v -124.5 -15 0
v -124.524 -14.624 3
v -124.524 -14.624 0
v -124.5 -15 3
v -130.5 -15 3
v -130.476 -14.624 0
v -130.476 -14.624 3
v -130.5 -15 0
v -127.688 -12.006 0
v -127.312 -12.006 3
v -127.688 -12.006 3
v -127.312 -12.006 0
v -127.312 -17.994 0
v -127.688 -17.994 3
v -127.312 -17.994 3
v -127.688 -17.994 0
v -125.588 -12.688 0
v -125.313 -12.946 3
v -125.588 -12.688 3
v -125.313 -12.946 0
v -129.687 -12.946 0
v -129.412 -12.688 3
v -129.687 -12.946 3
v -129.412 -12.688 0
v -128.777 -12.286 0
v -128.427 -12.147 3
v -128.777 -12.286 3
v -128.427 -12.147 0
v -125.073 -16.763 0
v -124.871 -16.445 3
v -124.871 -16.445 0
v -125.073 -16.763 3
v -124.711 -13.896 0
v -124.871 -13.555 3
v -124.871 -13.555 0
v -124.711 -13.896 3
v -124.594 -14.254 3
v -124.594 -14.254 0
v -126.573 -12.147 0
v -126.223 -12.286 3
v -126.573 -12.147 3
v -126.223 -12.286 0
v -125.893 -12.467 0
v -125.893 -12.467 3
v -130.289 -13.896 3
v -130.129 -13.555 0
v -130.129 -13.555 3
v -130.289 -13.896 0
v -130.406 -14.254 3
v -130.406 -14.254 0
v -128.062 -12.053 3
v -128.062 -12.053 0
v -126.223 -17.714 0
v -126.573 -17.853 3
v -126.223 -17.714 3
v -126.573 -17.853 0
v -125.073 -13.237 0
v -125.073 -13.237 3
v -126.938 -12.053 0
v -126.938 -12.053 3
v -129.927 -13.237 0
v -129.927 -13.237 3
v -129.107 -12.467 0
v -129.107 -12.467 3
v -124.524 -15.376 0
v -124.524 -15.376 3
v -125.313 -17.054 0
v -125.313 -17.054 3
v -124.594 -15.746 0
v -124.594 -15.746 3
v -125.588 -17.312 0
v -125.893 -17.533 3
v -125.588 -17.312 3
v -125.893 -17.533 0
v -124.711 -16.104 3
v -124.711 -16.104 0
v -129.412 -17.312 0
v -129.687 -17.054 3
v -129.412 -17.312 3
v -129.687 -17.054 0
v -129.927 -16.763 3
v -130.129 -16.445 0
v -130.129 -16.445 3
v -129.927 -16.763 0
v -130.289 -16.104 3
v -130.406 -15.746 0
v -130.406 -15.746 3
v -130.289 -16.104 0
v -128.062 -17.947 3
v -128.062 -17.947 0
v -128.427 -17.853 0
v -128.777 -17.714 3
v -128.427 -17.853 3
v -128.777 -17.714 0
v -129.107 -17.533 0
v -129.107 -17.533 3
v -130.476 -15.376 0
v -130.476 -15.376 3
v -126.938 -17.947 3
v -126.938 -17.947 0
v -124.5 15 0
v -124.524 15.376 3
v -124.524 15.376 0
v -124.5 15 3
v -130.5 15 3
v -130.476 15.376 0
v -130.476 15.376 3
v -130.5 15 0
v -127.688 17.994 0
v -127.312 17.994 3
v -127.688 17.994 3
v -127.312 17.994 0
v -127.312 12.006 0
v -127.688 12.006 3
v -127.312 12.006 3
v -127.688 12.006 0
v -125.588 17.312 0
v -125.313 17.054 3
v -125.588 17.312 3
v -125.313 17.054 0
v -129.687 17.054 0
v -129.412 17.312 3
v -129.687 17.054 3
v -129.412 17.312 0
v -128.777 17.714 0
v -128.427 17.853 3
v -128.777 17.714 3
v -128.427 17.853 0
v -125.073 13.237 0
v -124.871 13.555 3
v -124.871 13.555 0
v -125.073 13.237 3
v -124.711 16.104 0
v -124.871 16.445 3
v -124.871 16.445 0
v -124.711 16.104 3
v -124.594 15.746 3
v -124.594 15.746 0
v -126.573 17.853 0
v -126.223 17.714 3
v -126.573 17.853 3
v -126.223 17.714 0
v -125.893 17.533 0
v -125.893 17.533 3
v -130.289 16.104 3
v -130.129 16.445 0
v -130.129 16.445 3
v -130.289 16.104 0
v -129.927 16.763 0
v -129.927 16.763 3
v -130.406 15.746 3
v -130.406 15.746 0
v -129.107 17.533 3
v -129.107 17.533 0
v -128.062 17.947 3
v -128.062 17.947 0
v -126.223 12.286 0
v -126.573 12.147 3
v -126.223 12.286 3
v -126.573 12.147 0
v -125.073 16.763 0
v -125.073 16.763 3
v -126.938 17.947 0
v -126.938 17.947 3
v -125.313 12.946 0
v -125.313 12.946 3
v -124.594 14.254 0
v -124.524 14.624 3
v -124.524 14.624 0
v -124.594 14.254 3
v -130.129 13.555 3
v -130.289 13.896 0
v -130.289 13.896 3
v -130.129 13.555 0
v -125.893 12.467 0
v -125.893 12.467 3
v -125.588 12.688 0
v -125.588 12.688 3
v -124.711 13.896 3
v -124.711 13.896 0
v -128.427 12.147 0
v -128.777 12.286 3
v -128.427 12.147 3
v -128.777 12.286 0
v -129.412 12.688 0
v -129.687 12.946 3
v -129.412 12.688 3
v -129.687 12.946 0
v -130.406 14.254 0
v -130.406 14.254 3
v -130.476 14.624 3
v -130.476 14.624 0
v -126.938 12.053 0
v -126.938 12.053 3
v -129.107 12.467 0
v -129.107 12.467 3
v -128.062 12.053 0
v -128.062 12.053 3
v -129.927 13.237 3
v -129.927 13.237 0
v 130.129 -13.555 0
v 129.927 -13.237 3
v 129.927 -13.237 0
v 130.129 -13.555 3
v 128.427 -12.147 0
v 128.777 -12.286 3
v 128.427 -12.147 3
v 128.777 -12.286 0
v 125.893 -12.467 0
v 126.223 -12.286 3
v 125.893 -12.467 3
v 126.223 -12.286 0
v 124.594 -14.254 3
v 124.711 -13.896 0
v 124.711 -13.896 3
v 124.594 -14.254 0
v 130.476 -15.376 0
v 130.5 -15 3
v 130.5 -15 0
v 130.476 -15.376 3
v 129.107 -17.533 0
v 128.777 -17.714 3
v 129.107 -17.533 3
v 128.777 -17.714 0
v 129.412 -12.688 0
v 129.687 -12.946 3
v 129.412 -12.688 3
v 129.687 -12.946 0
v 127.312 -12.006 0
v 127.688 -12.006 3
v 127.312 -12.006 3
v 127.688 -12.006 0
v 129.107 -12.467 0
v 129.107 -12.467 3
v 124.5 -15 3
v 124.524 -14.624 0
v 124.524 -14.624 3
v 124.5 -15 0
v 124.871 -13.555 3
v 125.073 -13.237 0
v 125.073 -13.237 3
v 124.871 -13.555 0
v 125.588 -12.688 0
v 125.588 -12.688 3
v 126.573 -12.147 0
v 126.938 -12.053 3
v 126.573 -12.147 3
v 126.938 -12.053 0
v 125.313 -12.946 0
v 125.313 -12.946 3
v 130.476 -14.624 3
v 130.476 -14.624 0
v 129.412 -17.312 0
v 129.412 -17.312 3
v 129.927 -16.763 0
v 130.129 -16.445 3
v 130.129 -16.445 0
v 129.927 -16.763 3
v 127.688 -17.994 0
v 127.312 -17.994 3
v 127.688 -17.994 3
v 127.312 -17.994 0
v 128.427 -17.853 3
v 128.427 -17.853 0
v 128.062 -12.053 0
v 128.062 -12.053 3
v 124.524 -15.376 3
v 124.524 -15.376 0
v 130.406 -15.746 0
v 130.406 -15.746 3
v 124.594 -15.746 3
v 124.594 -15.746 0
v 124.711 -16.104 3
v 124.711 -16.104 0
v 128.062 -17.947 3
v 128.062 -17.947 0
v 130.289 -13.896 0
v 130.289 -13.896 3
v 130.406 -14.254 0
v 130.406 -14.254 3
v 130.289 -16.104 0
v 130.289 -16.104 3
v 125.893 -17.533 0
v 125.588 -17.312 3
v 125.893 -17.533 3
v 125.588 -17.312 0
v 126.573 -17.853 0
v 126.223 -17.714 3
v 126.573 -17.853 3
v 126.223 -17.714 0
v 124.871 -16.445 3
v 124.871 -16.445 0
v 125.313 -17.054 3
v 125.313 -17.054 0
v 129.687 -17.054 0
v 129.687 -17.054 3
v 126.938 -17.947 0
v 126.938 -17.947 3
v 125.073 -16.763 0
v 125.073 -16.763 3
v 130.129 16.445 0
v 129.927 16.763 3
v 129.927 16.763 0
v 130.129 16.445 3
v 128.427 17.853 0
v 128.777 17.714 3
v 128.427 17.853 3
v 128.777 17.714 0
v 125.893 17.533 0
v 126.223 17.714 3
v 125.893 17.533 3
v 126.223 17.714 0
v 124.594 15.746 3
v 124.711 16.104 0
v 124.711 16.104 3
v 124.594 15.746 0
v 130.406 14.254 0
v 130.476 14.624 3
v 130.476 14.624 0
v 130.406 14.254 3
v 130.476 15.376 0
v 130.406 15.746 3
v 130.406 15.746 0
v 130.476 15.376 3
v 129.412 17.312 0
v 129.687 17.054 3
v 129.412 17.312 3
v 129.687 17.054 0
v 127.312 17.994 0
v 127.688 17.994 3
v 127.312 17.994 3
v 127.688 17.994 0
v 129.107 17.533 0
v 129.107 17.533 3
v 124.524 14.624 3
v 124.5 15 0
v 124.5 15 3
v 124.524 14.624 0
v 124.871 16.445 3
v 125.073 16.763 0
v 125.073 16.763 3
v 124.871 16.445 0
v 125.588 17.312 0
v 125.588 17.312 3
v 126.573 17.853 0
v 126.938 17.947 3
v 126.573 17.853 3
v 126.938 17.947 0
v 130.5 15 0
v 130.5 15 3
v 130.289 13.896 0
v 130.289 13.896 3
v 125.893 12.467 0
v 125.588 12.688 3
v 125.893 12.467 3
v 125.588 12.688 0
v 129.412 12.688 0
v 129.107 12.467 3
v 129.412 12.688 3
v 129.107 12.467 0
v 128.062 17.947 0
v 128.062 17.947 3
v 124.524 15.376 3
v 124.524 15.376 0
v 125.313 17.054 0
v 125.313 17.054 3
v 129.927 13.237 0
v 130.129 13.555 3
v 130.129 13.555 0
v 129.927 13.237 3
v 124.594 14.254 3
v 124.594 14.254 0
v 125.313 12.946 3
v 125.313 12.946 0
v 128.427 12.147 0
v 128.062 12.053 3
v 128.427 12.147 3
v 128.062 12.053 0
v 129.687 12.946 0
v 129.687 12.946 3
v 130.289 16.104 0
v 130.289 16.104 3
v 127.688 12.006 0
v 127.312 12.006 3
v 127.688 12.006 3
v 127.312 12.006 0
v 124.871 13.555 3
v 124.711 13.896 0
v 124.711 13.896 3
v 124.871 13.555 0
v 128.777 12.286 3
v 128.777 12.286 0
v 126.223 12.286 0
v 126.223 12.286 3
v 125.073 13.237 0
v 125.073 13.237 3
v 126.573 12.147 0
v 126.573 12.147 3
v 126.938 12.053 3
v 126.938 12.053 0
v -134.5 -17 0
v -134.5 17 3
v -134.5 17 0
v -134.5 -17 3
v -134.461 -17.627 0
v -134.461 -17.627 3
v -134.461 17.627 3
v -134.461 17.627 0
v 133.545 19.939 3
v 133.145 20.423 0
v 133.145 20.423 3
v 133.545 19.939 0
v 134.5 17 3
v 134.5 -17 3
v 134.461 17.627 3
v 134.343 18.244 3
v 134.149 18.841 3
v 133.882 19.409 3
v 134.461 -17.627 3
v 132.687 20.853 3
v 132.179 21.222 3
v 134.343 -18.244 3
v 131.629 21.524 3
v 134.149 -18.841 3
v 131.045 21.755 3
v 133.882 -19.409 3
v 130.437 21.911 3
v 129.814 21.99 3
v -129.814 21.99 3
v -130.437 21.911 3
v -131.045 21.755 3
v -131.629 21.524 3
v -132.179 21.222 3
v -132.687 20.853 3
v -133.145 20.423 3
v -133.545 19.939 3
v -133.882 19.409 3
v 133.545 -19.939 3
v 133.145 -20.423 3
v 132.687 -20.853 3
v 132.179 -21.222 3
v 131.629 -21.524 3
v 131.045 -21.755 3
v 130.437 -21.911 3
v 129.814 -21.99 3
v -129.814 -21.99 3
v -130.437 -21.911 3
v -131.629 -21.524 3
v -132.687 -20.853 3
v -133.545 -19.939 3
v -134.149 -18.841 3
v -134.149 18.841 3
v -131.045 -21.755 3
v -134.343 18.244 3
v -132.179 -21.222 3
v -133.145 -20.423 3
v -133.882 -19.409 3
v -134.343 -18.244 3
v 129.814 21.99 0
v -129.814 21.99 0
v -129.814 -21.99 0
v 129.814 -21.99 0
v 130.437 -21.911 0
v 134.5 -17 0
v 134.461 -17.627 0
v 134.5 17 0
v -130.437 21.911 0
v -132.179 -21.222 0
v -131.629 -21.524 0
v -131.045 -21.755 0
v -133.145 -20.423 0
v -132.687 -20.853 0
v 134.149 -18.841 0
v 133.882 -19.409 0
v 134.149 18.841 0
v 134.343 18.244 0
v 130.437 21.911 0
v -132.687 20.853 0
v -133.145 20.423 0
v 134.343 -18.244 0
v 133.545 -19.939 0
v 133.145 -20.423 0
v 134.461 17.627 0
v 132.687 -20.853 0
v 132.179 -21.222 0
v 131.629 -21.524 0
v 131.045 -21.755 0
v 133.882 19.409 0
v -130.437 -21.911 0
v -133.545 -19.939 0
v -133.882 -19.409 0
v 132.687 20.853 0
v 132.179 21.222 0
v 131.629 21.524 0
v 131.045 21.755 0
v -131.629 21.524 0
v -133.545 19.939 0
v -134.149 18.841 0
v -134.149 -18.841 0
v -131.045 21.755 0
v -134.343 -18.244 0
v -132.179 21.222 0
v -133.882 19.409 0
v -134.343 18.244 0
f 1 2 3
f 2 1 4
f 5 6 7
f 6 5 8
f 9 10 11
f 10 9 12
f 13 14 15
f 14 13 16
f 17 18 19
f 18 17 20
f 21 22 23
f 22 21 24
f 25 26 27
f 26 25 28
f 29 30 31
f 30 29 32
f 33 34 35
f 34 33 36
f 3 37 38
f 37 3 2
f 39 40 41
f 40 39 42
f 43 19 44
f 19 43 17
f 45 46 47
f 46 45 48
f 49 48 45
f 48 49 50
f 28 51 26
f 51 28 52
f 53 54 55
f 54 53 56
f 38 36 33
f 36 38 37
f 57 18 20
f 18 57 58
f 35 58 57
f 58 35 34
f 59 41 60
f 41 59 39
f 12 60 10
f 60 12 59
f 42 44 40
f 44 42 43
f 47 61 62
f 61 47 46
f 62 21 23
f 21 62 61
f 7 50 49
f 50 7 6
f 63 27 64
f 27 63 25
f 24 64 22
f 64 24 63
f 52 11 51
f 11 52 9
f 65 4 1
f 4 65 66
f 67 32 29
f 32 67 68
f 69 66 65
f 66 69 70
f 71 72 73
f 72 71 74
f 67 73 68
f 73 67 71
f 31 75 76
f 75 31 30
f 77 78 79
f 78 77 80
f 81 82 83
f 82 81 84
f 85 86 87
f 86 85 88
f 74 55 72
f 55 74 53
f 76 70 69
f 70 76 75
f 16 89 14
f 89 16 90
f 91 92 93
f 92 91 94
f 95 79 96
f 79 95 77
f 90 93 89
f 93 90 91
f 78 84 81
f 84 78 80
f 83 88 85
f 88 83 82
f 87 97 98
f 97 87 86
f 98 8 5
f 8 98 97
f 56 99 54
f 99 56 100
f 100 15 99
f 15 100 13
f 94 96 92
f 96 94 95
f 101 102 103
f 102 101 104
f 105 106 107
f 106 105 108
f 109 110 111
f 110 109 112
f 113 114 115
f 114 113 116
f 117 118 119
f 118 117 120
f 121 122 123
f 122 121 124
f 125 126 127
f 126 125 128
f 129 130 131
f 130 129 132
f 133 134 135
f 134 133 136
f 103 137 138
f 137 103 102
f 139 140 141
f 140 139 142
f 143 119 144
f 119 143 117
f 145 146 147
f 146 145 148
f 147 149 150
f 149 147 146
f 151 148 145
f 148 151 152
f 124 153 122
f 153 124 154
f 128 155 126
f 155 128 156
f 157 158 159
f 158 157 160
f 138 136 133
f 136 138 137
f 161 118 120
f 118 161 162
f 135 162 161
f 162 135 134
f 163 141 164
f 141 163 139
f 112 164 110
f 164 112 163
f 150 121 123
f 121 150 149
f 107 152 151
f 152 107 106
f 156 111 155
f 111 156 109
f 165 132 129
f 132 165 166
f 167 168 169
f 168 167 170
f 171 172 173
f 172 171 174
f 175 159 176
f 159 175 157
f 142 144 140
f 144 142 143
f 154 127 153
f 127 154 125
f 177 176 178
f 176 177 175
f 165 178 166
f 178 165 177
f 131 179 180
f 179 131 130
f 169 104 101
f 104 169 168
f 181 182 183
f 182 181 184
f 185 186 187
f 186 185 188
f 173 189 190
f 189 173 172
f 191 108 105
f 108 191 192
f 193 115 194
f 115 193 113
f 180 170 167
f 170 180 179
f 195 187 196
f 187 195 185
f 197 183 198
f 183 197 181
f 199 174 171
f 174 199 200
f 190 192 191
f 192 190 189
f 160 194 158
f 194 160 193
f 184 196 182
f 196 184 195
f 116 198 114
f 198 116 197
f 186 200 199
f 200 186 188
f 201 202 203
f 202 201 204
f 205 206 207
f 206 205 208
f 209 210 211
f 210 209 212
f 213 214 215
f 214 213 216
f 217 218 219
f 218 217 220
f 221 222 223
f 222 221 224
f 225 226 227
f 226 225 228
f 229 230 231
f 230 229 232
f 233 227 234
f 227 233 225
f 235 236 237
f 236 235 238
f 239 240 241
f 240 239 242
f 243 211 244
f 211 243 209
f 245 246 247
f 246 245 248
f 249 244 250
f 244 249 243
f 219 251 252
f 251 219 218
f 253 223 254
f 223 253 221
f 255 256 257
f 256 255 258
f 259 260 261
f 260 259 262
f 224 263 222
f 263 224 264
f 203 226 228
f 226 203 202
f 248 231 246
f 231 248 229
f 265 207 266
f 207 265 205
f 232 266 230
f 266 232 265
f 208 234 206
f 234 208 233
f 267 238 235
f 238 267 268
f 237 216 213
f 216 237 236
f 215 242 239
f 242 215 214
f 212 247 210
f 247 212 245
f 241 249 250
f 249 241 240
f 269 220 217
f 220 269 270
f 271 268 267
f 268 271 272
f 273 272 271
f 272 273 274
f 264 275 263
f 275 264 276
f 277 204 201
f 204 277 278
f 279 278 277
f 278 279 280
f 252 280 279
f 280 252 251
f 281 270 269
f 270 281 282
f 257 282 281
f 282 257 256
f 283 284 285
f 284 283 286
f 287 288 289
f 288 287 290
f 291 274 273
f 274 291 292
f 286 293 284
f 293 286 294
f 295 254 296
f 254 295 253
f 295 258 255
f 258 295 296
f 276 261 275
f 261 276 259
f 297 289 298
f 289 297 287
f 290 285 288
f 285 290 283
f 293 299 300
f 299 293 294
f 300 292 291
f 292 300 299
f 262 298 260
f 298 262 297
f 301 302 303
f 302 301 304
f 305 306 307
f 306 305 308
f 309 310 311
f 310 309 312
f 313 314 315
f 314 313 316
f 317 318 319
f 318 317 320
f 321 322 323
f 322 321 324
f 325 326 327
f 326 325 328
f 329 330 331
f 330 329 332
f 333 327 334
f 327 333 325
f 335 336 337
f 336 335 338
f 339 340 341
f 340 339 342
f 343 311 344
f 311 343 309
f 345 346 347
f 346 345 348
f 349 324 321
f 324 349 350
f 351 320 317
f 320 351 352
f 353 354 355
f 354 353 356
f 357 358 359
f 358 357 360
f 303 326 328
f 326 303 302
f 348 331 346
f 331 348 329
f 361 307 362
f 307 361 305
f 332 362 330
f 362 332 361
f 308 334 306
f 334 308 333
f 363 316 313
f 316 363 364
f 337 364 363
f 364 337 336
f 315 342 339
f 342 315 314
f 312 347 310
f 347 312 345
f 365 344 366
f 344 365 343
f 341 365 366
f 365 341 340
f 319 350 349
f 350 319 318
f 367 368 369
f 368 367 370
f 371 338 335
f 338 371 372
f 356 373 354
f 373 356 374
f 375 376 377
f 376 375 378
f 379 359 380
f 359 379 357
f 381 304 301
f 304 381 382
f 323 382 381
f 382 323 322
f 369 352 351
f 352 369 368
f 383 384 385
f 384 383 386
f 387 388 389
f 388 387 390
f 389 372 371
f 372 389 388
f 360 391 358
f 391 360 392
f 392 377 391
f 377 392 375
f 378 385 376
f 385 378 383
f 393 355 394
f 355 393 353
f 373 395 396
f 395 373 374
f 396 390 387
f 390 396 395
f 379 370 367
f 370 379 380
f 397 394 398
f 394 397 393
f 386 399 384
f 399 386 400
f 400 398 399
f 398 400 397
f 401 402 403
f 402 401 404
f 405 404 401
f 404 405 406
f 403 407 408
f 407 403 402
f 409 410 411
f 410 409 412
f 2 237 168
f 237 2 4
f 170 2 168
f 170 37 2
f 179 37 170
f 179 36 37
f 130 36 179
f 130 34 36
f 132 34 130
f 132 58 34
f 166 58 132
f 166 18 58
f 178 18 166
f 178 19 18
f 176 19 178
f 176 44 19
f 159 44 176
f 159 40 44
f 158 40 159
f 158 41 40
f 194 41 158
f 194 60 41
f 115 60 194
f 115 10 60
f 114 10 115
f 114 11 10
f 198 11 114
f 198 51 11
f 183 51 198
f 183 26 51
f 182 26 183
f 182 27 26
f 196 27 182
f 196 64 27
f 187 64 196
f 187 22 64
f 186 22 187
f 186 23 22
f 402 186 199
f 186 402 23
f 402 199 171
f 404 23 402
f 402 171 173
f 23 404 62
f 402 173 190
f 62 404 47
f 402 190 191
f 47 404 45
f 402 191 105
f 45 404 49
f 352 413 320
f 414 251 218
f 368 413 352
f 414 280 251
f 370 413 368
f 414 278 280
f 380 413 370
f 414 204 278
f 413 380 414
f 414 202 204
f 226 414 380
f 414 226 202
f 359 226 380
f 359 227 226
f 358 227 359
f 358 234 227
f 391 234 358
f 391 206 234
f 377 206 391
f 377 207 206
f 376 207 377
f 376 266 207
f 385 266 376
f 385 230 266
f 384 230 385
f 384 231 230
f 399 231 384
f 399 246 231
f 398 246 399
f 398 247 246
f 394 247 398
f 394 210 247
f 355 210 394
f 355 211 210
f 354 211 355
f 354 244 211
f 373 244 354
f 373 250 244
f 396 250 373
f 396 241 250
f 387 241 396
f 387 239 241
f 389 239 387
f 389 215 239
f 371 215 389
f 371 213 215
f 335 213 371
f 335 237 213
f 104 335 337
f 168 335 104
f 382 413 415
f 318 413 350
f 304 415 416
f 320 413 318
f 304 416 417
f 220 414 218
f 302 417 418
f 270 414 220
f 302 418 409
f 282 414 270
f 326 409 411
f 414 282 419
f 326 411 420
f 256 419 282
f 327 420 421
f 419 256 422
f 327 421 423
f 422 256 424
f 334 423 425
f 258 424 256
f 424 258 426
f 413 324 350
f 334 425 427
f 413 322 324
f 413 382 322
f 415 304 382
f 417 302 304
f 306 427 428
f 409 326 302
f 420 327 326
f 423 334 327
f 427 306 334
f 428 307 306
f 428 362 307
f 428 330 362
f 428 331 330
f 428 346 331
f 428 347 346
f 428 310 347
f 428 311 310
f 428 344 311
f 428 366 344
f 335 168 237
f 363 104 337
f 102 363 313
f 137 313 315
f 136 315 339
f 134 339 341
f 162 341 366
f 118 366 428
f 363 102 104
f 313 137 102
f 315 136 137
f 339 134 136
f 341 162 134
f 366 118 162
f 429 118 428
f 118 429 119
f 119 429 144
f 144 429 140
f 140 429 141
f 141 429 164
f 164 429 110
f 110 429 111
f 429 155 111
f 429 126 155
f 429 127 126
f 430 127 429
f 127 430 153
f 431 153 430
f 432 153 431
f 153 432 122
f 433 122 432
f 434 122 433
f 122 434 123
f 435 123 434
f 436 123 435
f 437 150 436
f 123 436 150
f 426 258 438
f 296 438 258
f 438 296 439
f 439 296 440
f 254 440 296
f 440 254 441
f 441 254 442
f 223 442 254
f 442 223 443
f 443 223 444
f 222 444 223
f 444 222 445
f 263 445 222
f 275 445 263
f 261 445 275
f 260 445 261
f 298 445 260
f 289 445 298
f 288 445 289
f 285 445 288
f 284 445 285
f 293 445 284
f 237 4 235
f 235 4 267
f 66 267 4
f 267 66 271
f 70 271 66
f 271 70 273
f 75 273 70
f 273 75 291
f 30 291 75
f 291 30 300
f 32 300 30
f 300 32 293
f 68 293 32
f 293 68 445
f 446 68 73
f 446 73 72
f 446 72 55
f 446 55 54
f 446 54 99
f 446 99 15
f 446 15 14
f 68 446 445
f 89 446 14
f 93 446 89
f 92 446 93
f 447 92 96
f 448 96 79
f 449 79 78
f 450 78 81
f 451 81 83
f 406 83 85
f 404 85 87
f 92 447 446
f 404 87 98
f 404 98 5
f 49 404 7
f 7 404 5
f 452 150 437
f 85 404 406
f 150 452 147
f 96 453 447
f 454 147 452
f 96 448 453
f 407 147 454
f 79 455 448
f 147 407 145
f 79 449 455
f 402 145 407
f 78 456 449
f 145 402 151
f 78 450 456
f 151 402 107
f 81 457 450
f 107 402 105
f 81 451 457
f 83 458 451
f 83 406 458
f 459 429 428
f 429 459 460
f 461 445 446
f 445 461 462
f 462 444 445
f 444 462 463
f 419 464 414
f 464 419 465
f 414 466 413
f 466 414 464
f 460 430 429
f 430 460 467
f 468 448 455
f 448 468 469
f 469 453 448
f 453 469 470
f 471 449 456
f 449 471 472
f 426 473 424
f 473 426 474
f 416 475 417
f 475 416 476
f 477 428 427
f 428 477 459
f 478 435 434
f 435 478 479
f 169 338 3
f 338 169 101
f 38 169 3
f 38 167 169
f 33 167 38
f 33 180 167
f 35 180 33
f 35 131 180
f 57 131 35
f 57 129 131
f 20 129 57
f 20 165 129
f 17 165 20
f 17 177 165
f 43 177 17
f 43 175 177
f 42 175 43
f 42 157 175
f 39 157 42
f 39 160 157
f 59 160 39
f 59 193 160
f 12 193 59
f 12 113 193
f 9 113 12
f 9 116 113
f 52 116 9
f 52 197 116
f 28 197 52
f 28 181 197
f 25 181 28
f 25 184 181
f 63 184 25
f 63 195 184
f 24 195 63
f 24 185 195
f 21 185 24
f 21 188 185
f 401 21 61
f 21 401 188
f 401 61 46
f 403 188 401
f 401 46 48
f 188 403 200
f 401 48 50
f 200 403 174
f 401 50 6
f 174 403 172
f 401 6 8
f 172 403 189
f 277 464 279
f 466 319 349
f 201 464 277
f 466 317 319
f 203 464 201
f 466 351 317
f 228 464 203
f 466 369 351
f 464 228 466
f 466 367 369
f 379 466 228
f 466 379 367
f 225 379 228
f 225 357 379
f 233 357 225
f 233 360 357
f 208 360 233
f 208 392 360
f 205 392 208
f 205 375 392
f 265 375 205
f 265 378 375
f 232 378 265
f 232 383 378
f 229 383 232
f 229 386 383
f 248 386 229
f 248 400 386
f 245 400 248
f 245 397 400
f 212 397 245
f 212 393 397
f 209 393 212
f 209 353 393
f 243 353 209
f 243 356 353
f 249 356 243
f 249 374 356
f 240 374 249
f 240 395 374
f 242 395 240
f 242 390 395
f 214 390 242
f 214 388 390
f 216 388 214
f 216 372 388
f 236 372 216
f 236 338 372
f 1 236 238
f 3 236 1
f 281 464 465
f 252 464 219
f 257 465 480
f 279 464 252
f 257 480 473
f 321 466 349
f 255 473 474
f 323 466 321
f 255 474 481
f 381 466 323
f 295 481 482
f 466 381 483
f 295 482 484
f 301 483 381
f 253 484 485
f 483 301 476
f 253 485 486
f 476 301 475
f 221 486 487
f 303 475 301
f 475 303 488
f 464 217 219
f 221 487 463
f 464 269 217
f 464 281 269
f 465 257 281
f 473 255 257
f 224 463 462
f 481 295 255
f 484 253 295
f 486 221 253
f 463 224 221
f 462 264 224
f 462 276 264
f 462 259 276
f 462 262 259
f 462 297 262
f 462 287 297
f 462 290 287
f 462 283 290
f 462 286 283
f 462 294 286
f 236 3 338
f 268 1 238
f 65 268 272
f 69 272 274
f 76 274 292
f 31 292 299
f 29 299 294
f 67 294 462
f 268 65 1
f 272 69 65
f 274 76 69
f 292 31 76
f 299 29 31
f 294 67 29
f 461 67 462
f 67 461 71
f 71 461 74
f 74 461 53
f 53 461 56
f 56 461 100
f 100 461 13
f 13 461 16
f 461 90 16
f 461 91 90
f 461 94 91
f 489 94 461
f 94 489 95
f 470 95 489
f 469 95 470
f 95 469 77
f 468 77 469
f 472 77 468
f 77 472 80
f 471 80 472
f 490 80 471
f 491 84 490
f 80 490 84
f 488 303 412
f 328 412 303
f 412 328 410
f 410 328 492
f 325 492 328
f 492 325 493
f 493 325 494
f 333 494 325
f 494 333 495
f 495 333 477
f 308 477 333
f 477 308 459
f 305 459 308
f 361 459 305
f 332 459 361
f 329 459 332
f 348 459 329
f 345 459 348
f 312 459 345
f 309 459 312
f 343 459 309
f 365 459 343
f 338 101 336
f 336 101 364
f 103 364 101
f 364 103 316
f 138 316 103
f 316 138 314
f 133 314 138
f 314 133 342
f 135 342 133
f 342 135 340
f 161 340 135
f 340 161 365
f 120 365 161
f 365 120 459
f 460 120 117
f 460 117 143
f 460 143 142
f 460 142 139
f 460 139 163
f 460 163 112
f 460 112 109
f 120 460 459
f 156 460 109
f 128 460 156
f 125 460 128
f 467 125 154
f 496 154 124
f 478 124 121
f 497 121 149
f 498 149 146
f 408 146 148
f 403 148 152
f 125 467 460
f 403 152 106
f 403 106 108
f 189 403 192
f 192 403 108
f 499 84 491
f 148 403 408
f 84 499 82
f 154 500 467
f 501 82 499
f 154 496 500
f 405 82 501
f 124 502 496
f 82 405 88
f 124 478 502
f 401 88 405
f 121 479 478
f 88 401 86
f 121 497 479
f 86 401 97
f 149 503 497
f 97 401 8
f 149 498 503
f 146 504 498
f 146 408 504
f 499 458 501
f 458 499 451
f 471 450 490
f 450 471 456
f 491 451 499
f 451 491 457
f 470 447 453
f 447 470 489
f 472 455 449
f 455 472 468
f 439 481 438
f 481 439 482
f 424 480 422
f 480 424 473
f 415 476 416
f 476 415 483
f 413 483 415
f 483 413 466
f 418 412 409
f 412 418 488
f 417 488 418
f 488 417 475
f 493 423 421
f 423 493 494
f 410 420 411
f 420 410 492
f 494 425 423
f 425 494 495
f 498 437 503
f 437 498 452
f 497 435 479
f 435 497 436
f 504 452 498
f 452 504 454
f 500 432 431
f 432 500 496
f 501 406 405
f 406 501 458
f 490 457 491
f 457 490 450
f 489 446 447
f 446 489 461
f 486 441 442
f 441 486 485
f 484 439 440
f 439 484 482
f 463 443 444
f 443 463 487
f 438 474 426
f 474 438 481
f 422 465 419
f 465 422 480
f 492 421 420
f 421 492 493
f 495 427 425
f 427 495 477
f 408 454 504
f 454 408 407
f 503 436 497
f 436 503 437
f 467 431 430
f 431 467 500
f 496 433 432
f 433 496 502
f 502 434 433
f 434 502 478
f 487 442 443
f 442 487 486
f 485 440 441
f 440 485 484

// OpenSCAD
$fn = 50;


difference() {
	union() {
		hull() {
			translate(v = [-129.5000000000, 17.0000000000, 0]) {
				cylinder(h = 3, r = 5);
			}
			translate(v = [129.5000000000, 17.0000000000, 0]) {
				cylinder(h = 3, r = 5);
			}
			translate(v = [-129.5000000000, -17.0000000000, 0]) {
				cylinder(h = 3, r = 5);
			}
			translate(v = [129.5000000000, -17.0000000000, 0]) {
				cylinder(h = 3, r = 5);
			}
		}
	}
	union() {
		translate(v = [-127.5000000000, -15.0000000000, -100.0000000000]) {
			cylinder(h = 200, r = 3.0000000000);
		}
		translate(v = [-127.5000000000, 15.0000000000, -100.0000000000]) {
			cylinder(h = 200, r = 3.0000000000);
		}
		translate(v = [127.5000000000, -15.0000000000, -100.0000000000]) {
			cylinder(h = 200, r = 3.0000000000);
		}
		translate(v = [127.5000000000, 15.0000000000, -100.0000000000]) {
			cylinder(h = 200, r = 3.0000000000);
		}
	}
}
